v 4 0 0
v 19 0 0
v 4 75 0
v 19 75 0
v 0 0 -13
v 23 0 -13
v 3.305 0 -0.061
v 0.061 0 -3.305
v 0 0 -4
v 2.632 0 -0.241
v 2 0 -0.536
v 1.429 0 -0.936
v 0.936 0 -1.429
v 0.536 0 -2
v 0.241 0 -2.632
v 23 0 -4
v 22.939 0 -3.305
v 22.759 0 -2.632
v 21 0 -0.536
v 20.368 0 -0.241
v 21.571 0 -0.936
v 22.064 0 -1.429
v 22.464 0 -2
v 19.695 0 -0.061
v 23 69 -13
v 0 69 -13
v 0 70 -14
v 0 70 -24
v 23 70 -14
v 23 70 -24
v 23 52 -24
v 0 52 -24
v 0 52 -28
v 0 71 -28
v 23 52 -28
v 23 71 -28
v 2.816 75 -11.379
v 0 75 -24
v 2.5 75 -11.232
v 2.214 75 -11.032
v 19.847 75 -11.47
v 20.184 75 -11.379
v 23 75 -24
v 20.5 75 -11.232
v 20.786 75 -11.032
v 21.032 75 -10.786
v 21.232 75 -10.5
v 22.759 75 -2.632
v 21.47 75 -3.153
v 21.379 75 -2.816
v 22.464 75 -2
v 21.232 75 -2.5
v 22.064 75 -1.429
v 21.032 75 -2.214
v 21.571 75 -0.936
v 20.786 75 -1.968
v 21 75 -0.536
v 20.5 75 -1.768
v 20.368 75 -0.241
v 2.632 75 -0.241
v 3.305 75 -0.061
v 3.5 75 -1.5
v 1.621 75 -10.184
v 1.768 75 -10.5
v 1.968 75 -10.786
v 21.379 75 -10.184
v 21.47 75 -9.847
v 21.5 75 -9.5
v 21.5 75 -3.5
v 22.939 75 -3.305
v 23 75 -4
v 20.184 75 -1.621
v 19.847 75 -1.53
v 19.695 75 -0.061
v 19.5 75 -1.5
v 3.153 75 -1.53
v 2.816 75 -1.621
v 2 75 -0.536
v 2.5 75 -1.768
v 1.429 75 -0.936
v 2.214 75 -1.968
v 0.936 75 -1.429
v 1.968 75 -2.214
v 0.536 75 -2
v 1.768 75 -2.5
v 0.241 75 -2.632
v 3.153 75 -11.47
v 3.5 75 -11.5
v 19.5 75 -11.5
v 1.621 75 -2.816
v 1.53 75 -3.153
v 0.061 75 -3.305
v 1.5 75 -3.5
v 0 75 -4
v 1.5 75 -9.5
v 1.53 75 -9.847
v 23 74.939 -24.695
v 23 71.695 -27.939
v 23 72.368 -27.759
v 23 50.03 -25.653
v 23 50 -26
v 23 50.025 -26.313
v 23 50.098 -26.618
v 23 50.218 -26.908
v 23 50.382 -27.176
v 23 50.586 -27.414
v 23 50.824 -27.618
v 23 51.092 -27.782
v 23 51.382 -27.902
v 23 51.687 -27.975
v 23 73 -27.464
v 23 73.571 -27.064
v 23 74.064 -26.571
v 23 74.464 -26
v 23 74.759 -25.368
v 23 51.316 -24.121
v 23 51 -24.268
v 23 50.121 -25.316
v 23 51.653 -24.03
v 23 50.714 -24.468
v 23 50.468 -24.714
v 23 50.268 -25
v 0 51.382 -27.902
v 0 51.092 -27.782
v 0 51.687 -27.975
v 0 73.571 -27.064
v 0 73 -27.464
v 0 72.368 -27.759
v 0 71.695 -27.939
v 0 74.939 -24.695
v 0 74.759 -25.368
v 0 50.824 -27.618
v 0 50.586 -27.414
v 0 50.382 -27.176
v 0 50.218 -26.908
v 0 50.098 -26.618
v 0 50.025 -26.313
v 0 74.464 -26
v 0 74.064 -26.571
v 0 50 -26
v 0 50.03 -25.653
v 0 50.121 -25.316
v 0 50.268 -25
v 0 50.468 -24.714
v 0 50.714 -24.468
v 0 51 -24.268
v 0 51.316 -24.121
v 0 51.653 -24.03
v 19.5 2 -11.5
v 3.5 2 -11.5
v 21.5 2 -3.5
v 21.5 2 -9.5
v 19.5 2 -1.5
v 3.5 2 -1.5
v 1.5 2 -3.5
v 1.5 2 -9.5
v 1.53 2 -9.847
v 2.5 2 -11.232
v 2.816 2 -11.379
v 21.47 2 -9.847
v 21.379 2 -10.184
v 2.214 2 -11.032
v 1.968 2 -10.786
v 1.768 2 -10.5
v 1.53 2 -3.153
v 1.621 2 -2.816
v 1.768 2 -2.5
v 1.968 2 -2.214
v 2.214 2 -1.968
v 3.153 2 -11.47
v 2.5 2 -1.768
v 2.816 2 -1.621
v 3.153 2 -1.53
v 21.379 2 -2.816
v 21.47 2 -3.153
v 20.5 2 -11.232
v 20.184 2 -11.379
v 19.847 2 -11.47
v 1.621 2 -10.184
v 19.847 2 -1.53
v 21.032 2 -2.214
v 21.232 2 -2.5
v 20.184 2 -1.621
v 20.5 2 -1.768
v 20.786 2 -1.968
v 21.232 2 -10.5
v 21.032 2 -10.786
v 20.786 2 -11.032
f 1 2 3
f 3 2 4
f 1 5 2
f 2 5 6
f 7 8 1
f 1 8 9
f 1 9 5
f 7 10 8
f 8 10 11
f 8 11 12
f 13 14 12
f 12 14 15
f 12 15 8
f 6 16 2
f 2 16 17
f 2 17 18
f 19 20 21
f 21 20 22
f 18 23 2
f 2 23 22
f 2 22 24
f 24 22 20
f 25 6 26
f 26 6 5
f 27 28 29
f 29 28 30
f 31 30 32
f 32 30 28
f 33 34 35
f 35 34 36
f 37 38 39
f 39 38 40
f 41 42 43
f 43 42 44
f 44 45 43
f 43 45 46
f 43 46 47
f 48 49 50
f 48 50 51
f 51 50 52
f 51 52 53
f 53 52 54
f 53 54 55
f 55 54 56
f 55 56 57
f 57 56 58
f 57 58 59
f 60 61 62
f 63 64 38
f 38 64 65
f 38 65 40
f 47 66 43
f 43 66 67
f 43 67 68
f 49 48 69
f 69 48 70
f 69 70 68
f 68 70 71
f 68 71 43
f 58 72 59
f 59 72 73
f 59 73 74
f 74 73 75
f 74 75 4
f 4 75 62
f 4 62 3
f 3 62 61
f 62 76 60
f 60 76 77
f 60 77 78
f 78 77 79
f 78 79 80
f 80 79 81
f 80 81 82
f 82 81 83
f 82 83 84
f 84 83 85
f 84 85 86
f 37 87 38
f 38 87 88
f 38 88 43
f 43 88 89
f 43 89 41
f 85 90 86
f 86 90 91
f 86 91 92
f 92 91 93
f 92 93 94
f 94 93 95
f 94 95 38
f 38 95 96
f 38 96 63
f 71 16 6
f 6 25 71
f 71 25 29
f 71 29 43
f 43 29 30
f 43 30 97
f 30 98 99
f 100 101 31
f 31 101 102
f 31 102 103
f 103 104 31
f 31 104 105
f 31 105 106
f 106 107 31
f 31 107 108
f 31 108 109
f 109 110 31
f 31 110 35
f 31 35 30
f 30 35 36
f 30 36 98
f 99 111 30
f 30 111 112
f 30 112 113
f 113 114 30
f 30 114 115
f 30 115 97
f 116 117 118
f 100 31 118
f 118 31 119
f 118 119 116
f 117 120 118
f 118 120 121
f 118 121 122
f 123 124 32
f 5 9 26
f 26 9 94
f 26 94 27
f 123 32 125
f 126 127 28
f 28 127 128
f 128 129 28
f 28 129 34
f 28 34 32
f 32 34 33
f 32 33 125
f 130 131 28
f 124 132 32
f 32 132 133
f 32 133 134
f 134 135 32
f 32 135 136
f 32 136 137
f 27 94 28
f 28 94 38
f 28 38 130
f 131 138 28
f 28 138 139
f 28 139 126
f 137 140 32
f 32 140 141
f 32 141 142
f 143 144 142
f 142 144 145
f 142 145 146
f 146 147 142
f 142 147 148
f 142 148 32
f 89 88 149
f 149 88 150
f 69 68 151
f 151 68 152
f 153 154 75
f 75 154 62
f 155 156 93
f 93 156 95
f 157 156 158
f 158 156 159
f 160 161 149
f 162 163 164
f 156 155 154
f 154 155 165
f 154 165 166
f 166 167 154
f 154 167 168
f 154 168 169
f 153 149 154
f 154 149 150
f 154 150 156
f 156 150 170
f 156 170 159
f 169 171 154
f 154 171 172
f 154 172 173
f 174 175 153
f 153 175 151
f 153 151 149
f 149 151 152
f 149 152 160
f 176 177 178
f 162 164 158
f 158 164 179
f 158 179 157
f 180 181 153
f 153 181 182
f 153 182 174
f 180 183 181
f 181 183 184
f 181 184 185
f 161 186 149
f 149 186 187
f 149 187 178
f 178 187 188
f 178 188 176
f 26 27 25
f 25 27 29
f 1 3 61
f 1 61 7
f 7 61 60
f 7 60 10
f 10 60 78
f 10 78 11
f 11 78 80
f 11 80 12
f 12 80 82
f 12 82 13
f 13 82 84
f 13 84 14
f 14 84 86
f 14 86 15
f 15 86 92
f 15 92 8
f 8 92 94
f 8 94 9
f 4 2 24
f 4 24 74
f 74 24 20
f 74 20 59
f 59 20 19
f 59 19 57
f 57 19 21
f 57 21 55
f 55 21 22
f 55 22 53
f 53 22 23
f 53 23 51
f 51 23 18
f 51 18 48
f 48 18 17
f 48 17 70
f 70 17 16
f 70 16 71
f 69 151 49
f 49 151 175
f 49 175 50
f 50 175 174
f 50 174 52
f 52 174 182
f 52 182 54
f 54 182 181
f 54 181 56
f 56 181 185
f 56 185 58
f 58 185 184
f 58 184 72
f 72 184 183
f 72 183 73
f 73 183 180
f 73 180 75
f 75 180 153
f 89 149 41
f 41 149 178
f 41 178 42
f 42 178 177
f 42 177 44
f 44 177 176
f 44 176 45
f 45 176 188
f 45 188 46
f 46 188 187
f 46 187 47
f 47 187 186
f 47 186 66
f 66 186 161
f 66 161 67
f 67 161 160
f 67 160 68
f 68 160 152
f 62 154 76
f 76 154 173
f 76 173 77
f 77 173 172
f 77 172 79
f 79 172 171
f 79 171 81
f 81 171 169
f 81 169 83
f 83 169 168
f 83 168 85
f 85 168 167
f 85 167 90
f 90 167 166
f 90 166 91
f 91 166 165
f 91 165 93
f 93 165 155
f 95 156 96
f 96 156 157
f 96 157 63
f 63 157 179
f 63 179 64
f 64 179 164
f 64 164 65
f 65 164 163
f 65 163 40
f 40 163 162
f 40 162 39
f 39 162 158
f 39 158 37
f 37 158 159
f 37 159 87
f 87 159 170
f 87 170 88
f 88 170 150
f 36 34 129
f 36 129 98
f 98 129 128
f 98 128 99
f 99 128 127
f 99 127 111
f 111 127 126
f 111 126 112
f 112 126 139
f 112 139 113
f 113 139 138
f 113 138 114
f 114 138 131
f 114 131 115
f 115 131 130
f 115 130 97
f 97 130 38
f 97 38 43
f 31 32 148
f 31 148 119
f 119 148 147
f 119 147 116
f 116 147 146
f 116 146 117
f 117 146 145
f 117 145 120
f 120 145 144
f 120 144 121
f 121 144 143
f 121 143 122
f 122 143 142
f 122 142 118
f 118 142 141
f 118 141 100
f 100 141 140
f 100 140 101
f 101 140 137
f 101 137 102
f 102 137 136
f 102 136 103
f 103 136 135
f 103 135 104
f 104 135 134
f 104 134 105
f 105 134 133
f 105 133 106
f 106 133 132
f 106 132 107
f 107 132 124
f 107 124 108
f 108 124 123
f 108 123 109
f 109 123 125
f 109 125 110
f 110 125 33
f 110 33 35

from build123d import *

# Parameters (mm, degrees)
BOSS_EXTRUDE1_DEPTH = 23
SKETCH3_W           = 20
SKETCH3_H           = 10
CUT_EXTRUDE1_DEPTH  = 73
CHAMFER1_SIZE       = 1
FILLET1_R           = 4
FILLET2_R           = 2
FILLET3_R           = 4
FILLET4_R           = 2


with BuildPart() as part:
    # Sketch2 → Boss-Extrude1 (new body)
    with BuildSketch(Plane(origin=(0, 0, 0), x_dir=(0, 0, -1), z_dir=(1, 0, 0))):
        Polygon((0, 0), (13, 0), (13, 70), (24, 70), (24, 50), (28, 50), (28, 75), (0, 75), align=None)
    extrude(amount=BOSS_EXTRUDE1_DEPTH)

    # Sketch3 → Cut-Extrude1 (cut)
    with BuildSketch(Plane(origin=(0, 75, 0), x_dir=(1, 0, 0), z_dir=(0, 1, 0))):
        with Locations((11.5, 6.5)):
            Rectangle(SKETCH3_W, SKETCH3_H)
    extrude(amount=-CUT_EXTRUDE1_DEPTH, mode=Mode.SUBTRACT)

    # Chamfer1
    chamfer1_edges = [part.edges().sort_by_distance(p)[0] for p in [
        (11.5, 70, -13),
    ]]
    chamfer(chamfer1_edges, length=CHAMFER1_SIZE)

    # Fillet1
    fillet1_edges = [part.edges().sort_by_distance(p)[0] for p in [
        (0, 37.5, 0),
        (23, 37.5, 0),
    ]]
    fillet(fillet1_edges, radius=FILLET1_R)

    # Fillet2
    fillet2_edges = [part.edges().sort_by_distance(p)[0] for p in [
        (1.5, 38.5, -11.5),
        (21.5, 38.5, -11.5),
        (21.5, 38.5, -1.5),
        (1.5, 38.5, -1.5),
    ]]
    fillet(fillet2_edges, radius=FILLET2_R)

    # Fillet3
    fillet3_edges = [part.edges().sort_by_distance(p)[0] for p in [
        (11.5, 75, -28),
    ]]
    fillet(fillet3_edges, radius=FILLET3_R)

    # Fillet4
    fillet4_edges = [part.edges().sort_by_distance(p)[0] for p in [
        (11.5, 50, -28),
        (11.5, 50, -24),
    ]]
    fillet(fillet4_edges, radius=FILLET4_R - 0.0001)  # a hair under: the kernel refuses the full size


solid = part.part
